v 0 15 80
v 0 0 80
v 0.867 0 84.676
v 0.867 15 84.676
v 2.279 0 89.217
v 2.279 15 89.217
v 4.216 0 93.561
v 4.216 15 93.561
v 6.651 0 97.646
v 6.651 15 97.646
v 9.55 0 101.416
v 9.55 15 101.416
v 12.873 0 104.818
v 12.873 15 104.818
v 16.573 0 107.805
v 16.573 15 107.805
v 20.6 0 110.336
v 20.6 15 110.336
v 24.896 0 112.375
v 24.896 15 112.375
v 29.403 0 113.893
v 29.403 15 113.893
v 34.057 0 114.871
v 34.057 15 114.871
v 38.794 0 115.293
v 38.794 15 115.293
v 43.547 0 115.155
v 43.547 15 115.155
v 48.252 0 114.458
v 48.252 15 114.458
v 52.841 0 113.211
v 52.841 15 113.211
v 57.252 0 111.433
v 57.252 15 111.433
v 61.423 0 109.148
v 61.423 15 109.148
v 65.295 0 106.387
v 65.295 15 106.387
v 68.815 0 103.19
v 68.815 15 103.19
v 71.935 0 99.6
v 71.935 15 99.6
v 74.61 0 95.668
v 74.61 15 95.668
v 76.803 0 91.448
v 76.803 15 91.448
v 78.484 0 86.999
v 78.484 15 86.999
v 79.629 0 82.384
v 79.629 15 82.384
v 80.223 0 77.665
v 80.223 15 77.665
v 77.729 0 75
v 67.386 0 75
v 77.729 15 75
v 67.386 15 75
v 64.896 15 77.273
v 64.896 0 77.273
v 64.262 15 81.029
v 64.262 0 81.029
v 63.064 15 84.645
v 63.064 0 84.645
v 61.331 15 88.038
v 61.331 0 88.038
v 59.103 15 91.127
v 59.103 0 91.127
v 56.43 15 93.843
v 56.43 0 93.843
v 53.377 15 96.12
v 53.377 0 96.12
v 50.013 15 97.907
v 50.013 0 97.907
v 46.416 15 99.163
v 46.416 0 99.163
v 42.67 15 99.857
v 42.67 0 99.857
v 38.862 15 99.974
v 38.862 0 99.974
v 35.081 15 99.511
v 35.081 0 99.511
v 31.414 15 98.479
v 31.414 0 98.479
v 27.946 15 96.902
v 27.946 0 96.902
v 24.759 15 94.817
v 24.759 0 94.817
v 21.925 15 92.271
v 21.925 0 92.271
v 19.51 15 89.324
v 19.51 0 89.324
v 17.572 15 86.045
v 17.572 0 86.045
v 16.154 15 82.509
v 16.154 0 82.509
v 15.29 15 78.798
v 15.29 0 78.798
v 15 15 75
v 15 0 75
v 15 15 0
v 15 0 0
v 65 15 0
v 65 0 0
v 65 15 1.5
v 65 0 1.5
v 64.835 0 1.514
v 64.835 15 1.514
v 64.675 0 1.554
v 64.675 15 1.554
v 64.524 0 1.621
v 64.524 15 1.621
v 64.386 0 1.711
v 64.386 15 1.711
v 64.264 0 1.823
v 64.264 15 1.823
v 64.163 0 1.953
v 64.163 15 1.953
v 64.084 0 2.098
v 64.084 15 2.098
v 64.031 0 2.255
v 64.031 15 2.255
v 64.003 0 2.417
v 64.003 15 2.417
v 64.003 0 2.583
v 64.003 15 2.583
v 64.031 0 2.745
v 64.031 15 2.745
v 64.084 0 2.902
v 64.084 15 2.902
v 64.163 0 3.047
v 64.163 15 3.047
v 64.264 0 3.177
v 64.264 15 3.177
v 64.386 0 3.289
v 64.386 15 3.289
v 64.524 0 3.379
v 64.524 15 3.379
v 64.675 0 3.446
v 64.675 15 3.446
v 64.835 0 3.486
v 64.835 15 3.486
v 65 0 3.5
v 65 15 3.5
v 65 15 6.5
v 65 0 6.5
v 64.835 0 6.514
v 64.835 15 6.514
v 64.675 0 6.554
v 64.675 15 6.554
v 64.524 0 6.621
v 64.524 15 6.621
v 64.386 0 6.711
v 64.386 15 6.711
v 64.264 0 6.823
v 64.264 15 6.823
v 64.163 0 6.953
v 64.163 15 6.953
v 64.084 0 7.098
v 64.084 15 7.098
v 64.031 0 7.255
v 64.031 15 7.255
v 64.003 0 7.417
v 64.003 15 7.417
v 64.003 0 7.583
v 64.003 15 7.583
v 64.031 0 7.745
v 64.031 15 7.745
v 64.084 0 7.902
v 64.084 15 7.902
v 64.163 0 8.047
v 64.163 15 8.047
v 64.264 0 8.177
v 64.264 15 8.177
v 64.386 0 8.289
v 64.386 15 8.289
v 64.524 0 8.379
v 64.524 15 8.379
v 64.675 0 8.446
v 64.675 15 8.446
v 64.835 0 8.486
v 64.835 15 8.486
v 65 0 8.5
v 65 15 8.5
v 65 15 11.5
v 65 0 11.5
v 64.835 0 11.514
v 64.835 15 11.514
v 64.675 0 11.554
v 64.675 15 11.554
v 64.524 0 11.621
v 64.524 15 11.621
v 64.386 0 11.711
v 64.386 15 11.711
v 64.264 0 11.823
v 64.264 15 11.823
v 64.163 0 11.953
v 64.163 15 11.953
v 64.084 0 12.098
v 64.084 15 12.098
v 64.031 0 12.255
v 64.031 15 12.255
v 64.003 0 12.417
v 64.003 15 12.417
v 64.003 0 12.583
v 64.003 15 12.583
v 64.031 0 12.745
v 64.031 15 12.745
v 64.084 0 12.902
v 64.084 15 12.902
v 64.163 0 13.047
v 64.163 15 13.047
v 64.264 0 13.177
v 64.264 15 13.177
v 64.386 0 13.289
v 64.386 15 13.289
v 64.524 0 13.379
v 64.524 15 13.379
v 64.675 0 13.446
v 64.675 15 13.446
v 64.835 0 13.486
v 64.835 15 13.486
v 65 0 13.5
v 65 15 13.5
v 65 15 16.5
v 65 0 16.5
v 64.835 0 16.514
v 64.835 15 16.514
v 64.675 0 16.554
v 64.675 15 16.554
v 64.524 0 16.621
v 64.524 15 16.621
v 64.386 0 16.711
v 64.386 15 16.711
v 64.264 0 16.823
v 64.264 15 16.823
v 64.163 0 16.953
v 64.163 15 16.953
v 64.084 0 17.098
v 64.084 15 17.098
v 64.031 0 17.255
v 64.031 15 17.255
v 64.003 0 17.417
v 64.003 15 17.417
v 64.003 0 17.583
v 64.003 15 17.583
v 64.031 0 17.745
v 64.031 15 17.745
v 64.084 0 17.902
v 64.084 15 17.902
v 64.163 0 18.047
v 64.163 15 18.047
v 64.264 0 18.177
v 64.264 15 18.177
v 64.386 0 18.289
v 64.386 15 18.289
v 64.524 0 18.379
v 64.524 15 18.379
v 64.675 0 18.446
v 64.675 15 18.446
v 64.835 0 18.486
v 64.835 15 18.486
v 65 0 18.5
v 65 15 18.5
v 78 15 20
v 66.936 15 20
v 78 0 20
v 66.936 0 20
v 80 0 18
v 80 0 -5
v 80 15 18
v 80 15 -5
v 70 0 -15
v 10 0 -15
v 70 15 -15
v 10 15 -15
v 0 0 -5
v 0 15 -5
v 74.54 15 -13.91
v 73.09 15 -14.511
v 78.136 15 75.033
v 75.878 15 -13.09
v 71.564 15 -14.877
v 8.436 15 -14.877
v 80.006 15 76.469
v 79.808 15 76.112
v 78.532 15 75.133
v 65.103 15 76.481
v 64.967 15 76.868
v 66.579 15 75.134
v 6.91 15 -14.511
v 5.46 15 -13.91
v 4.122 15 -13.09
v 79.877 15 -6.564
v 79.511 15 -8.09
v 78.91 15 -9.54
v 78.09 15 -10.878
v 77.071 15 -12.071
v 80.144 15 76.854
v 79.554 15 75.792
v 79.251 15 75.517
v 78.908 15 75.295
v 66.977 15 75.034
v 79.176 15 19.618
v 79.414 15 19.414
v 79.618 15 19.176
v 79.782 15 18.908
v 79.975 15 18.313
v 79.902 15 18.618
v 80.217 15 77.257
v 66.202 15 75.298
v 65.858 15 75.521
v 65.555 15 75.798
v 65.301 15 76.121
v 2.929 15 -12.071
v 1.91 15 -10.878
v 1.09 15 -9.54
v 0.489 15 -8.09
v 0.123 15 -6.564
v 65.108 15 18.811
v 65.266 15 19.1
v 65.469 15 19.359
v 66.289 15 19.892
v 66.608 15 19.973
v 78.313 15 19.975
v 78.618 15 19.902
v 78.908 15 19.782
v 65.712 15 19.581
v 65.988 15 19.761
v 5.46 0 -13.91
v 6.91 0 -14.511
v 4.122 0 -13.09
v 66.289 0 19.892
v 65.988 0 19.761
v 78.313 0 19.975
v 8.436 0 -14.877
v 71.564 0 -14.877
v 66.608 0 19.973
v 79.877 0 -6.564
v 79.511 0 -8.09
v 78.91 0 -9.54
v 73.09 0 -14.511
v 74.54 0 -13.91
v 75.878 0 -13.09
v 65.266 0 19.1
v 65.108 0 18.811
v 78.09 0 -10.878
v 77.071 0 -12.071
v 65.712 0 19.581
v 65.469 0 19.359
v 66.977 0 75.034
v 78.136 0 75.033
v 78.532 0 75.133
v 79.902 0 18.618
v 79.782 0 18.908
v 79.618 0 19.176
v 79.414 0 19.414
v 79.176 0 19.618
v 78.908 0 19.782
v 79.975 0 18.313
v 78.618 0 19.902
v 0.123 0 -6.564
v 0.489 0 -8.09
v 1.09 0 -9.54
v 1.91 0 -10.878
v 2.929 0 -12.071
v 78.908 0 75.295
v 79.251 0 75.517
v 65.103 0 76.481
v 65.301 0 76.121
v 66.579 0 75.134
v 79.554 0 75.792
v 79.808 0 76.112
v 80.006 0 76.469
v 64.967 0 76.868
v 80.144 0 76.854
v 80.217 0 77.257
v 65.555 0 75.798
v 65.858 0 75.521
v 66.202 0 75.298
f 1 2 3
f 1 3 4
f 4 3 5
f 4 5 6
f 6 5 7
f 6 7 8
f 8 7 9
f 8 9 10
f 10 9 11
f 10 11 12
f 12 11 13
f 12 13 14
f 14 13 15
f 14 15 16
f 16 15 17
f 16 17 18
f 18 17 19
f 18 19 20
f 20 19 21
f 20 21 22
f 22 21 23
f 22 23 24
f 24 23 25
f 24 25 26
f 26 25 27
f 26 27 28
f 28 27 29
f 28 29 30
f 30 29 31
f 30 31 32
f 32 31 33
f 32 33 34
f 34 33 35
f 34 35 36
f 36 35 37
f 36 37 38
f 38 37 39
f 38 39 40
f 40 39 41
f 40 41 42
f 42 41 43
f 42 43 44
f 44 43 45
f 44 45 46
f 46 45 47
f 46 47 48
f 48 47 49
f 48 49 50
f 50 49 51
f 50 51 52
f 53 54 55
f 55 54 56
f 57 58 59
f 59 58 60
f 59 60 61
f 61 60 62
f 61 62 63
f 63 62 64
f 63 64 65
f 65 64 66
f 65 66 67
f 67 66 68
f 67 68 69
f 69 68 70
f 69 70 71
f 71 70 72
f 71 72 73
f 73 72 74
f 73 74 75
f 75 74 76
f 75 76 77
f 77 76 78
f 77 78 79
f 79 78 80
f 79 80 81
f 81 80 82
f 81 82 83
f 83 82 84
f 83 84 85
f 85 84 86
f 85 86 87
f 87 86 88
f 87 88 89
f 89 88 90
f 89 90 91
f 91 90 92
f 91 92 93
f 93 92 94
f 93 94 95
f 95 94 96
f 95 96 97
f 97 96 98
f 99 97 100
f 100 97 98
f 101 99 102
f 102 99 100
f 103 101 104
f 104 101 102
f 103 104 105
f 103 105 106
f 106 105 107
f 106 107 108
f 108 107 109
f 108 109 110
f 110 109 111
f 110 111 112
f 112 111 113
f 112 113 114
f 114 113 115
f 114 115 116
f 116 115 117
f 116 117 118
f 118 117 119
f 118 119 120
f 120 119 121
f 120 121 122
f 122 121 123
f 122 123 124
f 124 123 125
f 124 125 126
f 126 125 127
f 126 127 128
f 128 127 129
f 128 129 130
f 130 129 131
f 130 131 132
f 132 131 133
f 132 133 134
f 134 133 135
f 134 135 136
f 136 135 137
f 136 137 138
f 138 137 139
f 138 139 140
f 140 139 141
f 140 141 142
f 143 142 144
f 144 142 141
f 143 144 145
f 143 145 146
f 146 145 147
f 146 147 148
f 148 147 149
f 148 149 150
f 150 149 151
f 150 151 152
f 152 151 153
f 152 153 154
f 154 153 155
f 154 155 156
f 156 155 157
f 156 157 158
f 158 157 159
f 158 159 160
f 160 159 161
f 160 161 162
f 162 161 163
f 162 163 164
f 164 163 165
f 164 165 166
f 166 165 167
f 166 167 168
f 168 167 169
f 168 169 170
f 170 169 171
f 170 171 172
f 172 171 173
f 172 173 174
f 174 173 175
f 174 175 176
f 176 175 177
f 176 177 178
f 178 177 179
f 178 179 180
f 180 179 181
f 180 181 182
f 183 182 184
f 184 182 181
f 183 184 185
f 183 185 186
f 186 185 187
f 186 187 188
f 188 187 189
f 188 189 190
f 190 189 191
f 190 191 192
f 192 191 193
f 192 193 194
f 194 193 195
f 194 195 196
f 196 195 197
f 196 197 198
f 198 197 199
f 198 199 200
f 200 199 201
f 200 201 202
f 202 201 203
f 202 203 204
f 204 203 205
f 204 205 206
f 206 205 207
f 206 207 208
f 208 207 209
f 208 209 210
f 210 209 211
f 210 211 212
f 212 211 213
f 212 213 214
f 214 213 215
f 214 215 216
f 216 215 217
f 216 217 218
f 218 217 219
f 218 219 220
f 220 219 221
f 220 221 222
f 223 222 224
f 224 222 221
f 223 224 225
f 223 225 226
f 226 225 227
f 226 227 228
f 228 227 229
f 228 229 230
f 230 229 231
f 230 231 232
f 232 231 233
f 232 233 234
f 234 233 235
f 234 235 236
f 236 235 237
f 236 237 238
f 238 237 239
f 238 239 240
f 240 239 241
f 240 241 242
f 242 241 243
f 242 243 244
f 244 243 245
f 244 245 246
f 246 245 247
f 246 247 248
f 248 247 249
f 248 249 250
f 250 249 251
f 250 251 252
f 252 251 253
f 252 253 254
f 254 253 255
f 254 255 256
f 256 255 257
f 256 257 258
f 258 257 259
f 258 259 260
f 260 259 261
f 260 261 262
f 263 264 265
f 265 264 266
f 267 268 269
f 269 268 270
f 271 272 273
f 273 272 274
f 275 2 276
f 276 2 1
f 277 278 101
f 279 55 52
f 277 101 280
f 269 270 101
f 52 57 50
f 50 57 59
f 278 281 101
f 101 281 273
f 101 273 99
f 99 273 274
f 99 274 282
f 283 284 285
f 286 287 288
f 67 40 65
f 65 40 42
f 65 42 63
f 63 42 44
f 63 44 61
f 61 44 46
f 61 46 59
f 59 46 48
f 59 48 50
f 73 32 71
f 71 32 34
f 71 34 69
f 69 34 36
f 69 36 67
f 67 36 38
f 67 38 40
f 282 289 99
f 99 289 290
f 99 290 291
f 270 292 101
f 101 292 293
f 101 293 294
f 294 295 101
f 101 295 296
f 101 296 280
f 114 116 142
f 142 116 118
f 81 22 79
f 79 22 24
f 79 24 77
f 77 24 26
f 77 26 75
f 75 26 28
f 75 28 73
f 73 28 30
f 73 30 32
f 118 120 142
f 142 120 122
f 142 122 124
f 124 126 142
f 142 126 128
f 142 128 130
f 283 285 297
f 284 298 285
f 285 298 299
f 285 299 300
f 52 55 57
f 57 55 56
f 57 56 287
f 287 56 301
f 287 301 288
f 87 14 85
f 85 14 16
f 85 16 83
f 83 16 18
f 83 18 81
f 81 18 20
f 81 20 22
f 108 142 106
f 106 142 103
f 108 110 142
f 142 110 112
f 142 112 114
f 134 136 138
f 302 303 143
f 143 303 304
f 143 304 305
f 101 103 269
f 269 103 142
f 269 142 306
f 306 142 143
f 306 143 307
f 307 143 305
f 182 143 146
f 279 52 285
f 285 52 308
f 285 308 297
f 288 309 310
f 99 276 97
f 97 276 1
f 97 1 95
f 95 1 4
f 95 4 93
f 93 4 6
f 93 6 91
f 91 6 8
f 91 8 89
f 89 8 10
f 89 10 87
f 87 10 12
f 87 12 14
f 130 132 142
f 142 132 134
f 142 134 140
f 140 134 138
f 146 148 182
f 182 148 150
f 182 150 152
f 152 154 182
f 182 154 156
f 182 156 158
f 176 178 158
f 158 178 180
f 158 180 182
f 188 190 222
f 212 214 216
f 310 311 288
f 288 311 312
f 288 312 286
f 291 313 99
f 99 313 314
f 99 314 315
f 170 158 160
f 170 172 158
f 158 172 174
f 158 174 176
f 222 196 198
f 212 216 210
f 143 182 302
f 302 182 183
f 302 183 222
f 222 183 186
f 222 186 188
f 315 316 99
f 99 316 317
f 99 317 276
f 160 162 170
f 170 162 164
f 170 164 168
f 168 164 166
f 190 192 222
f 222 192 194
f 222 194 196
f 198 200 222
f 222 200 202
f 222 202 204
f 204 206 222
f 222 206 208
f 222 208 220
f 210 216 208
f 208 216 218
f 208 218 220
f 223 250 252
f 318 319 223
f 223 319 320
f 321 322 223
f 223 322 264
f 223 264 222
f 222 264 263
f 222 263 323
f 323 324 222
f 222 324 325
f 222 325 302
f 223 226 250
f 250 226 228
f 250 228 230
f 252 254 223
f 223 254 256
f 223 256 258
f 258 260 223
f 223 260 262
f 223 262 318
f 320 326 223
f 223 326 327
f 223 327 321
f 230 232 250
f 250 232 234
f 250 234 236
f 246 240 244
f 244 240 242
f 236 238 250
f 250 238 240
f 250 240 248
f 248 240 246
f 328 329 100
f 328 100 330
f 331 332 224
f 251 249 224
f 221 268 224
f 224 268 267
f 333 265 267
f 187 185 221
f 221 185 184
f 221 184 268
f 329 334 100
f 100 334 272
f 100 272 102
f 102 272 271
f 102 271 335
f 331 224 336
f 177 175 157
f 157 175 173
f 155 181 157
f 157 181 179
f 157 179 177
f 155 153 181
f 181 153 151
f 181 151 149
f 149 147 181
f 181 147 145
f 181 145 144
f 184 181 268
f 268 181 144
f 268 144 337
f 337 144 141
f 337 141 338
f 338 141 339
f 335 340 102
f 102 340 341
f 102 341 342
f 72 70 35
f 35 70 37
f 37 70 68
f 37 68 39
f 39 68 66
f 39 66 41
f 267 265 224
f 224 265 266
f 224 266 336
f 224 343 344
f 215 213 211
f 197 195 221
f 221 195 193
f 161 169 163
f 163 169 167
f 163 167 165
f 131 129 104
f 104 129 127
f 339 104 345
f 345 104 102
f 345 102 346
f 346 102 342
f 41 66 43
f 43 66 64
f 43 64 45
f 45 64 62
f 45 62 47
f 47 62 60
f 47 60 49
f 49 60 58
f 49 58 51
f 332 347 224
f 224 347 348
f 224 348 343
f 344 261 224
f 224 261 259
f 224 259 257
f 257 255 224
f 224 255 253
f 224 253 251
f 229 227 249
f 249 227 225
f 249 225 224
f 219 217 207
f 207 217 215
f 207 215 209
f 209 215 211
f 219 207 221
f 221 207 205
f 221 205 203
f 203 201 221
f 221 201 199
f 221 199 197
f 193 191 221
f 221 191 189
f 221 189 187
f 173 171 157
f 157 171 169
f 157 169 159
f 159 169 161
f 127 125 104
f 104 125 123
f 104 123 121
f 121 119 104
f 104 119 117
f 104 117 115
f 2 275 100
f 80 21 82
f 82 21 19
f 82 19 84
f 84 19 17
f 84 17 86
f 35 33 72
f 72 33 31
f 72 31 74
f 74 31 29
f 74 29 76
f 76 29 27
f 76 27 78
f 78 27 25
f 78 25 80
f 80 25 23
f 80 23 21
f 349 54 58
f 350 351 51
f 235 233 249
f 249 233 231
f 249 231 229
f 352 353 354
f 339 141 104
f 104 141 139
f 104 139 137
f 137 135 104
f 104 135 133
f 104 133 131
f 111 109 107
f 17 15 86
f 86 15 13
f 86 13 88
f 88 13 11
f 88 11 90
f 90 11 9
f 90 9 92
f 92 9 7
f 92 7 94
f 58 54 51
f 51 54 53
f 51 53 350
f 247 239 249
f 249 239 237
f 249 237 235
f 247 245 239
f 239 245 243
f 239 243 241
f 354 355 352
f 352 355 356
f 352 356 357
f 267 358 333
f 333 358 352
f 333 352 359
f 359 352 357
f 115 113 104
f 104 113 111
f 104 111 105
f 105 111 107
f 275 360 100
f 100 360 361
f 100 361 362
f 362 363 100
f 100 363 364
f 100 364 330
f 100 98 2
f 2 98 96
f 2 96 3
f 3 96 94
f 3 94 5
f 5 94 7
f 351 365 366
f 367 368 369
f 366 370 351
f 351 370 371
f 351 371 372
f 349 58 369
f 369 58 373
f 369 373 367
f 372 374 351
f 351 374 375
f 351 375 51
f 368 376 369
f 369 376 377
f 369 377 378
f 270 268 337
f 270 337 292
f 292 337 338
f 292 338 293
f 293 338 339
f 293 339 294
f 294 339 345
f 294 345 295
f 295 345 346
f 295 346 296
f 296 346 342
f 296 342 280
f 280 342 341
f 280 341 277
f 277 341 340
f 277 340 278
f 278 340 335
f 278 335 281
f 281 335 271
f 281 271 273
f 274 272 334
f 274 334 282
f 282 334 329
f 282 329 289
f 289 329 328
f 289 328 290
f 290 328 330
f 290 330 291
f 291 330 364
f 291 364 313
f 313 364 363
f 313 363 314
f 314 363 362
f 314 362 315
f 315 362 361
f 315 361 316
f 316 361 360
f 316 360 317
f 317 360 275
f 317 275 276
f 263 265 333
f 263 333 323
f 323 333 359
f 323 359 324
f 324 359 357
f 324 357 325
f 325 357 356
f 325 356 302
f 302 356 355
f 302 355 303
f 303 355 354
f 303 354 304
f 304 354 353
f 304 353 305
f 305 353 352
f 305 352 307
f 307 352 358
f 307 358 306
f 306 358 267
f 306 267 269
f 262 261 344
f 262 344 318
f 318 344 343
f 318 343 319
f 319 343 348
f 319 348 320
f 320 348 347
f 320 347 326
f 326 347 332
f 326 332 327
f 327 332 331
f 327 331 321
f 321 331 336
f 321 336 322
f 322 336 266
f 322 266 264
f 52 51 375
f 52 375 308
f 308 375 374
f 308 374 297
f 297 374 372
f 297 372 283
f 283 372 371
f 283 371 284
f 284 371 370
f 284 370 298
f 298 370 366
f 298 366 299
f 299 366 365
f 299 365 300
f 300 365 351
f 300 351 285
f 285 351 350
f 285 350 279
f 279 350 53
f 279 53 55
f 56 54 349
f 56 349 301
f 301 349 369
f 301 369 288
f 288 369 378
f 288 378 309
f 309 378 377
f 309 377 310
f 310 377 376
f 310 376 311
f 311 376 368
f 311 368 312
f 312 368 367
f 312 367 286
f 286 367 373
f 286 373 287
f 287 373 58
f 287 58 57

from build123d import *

# Parameters (mm, degrees)
BOSS_EXTRUDE1_DEPTH = 15
FILLET1_R           = 10
FILLET3_R           = 2
FILLET6_R           = 2.5


with BuildPart() as part:
    # Sketch1 → Boss-Extrude1 (new body)
    with BuildSketch(Plane(origin=(0, 0, 0), x_dir=(1, 0, 0), z_dir=(0, 1, 0))):
        with BuildLine():
            Line((65, -75), (80.311288741, -75))
            ThreePointArc((80.311288741, -75), (42.504840348, -115.233391292), (0, -80))
            Line((0, -80), (0, -50))
            Line((0, -50), (0, 0))
            Line((0, 0), (0, 15))
            Line((0, 15), (80, 15))
            Line((80, 15), (80, 0))
            Line((80, 0), (80, -20))
            Line((80, -20), (65, -20))
            Line((65, -20), (65, -18.5))
            ThreePointArc((65, -18.5), (64, -17.5), (65, -16.5))
            Line((65, -16.5), (65, -13.5))
            ThreePointArc((65, -13.5), (64, -12.5), (65, -11.5))
            Line((65, -11.5), (65, -8.5))
            ThreePointArc((65, -8.5), (64, -7.5), (65, -6.5))
            Line((65, -6.5), (65, -3.5))
            ThreePointArc((65, -3.5), (64, -2.5), (65, -1.5))
            Line((65, -1.5), (65, 0))
            Line((65, 0), (15, 0))
            Line((15, 0), (15, -50))
            Line((15, -50), (15, -75))
            ThreePointArc((15, -75), (40, -100), (65, -75))
        make_face()
    extrude(amount=BOSS_EXTRUDE1_DEPTH)

    # Fillet1
    fillet1_edges = [part.edges().sort_by_distance(p)[0] for p in [
        (0, 7.5, -15),
        (80, 7.5, -15),
    ]]
    fillet(fillet1_edges, radius=FILLET1_R)

    # Fillet3
    # the kernel refuses this fillet: 2 mm, written as the material it takes off along each edge
    with BuildSketch(Plane(origin=(80, -5, 20), x_dir=(0, 0, -1), z_dir=(0, 1, 0))) as fillet3_piece_1:
        with BuildLine():
            CenterArc((FILLET3_R, FILLET3_R), FILLET3_R, 180, 90)
            Line((0, FILLET3_R), (-FILLET3_R * 0.02, FILLET3_R))
            Line((-FILLET3_R * 0.02, FILLET3_R), (-FILLET3_R * 0.02, -FILLET3_R * 0.02))
            Line((-FILLET3_R * 0.02, -FILLET3_R * 0.02), (FILLET3_R, -FILLET3_R * 0.02))
            Line((FILLET3_R, -FILLET3_R * 0.02), (FILLET3_R, 0))
        make_face()
    extrude(amount=25, mode=Mode.SUBTRACT)
    with BuildSketch(Plane(origin=(65, -4.841229183, 20), x_dir=(1, 0, 0), z_dir=(0, 1, 0))) as fillet3_piece_2:
        with BuildLine():
            CenterArc((1.936491673, 2), FILLET3_R, 194.477512186, 75.522487814)
            Line((0, 1.5), (-0.038729833, 1.49))
            ThreePointArc((-0.038729833, 1.49), (-0.04, 0.75), (-0.04, 0))
            Line((-0.04, 0), (0, -0.04))
            Line((0, -0.04), (1.936491673, -0.04))
            Line((1.936491673, -0.04), (1.936491673, 0))
        make_face()
    extrude(amount=24.682458366, mode=Mode.SUBTRACT)

    # Fillet6
    fillet6_edges = [part.edges().sort_by_distance(p)[0] for p in [
        (65, 7.5, 75),
        (80.311288741, 7.5, 75),
    ]]
    fillet(fillet6_edges, radius=FILLET6_R)


solid = part.part
